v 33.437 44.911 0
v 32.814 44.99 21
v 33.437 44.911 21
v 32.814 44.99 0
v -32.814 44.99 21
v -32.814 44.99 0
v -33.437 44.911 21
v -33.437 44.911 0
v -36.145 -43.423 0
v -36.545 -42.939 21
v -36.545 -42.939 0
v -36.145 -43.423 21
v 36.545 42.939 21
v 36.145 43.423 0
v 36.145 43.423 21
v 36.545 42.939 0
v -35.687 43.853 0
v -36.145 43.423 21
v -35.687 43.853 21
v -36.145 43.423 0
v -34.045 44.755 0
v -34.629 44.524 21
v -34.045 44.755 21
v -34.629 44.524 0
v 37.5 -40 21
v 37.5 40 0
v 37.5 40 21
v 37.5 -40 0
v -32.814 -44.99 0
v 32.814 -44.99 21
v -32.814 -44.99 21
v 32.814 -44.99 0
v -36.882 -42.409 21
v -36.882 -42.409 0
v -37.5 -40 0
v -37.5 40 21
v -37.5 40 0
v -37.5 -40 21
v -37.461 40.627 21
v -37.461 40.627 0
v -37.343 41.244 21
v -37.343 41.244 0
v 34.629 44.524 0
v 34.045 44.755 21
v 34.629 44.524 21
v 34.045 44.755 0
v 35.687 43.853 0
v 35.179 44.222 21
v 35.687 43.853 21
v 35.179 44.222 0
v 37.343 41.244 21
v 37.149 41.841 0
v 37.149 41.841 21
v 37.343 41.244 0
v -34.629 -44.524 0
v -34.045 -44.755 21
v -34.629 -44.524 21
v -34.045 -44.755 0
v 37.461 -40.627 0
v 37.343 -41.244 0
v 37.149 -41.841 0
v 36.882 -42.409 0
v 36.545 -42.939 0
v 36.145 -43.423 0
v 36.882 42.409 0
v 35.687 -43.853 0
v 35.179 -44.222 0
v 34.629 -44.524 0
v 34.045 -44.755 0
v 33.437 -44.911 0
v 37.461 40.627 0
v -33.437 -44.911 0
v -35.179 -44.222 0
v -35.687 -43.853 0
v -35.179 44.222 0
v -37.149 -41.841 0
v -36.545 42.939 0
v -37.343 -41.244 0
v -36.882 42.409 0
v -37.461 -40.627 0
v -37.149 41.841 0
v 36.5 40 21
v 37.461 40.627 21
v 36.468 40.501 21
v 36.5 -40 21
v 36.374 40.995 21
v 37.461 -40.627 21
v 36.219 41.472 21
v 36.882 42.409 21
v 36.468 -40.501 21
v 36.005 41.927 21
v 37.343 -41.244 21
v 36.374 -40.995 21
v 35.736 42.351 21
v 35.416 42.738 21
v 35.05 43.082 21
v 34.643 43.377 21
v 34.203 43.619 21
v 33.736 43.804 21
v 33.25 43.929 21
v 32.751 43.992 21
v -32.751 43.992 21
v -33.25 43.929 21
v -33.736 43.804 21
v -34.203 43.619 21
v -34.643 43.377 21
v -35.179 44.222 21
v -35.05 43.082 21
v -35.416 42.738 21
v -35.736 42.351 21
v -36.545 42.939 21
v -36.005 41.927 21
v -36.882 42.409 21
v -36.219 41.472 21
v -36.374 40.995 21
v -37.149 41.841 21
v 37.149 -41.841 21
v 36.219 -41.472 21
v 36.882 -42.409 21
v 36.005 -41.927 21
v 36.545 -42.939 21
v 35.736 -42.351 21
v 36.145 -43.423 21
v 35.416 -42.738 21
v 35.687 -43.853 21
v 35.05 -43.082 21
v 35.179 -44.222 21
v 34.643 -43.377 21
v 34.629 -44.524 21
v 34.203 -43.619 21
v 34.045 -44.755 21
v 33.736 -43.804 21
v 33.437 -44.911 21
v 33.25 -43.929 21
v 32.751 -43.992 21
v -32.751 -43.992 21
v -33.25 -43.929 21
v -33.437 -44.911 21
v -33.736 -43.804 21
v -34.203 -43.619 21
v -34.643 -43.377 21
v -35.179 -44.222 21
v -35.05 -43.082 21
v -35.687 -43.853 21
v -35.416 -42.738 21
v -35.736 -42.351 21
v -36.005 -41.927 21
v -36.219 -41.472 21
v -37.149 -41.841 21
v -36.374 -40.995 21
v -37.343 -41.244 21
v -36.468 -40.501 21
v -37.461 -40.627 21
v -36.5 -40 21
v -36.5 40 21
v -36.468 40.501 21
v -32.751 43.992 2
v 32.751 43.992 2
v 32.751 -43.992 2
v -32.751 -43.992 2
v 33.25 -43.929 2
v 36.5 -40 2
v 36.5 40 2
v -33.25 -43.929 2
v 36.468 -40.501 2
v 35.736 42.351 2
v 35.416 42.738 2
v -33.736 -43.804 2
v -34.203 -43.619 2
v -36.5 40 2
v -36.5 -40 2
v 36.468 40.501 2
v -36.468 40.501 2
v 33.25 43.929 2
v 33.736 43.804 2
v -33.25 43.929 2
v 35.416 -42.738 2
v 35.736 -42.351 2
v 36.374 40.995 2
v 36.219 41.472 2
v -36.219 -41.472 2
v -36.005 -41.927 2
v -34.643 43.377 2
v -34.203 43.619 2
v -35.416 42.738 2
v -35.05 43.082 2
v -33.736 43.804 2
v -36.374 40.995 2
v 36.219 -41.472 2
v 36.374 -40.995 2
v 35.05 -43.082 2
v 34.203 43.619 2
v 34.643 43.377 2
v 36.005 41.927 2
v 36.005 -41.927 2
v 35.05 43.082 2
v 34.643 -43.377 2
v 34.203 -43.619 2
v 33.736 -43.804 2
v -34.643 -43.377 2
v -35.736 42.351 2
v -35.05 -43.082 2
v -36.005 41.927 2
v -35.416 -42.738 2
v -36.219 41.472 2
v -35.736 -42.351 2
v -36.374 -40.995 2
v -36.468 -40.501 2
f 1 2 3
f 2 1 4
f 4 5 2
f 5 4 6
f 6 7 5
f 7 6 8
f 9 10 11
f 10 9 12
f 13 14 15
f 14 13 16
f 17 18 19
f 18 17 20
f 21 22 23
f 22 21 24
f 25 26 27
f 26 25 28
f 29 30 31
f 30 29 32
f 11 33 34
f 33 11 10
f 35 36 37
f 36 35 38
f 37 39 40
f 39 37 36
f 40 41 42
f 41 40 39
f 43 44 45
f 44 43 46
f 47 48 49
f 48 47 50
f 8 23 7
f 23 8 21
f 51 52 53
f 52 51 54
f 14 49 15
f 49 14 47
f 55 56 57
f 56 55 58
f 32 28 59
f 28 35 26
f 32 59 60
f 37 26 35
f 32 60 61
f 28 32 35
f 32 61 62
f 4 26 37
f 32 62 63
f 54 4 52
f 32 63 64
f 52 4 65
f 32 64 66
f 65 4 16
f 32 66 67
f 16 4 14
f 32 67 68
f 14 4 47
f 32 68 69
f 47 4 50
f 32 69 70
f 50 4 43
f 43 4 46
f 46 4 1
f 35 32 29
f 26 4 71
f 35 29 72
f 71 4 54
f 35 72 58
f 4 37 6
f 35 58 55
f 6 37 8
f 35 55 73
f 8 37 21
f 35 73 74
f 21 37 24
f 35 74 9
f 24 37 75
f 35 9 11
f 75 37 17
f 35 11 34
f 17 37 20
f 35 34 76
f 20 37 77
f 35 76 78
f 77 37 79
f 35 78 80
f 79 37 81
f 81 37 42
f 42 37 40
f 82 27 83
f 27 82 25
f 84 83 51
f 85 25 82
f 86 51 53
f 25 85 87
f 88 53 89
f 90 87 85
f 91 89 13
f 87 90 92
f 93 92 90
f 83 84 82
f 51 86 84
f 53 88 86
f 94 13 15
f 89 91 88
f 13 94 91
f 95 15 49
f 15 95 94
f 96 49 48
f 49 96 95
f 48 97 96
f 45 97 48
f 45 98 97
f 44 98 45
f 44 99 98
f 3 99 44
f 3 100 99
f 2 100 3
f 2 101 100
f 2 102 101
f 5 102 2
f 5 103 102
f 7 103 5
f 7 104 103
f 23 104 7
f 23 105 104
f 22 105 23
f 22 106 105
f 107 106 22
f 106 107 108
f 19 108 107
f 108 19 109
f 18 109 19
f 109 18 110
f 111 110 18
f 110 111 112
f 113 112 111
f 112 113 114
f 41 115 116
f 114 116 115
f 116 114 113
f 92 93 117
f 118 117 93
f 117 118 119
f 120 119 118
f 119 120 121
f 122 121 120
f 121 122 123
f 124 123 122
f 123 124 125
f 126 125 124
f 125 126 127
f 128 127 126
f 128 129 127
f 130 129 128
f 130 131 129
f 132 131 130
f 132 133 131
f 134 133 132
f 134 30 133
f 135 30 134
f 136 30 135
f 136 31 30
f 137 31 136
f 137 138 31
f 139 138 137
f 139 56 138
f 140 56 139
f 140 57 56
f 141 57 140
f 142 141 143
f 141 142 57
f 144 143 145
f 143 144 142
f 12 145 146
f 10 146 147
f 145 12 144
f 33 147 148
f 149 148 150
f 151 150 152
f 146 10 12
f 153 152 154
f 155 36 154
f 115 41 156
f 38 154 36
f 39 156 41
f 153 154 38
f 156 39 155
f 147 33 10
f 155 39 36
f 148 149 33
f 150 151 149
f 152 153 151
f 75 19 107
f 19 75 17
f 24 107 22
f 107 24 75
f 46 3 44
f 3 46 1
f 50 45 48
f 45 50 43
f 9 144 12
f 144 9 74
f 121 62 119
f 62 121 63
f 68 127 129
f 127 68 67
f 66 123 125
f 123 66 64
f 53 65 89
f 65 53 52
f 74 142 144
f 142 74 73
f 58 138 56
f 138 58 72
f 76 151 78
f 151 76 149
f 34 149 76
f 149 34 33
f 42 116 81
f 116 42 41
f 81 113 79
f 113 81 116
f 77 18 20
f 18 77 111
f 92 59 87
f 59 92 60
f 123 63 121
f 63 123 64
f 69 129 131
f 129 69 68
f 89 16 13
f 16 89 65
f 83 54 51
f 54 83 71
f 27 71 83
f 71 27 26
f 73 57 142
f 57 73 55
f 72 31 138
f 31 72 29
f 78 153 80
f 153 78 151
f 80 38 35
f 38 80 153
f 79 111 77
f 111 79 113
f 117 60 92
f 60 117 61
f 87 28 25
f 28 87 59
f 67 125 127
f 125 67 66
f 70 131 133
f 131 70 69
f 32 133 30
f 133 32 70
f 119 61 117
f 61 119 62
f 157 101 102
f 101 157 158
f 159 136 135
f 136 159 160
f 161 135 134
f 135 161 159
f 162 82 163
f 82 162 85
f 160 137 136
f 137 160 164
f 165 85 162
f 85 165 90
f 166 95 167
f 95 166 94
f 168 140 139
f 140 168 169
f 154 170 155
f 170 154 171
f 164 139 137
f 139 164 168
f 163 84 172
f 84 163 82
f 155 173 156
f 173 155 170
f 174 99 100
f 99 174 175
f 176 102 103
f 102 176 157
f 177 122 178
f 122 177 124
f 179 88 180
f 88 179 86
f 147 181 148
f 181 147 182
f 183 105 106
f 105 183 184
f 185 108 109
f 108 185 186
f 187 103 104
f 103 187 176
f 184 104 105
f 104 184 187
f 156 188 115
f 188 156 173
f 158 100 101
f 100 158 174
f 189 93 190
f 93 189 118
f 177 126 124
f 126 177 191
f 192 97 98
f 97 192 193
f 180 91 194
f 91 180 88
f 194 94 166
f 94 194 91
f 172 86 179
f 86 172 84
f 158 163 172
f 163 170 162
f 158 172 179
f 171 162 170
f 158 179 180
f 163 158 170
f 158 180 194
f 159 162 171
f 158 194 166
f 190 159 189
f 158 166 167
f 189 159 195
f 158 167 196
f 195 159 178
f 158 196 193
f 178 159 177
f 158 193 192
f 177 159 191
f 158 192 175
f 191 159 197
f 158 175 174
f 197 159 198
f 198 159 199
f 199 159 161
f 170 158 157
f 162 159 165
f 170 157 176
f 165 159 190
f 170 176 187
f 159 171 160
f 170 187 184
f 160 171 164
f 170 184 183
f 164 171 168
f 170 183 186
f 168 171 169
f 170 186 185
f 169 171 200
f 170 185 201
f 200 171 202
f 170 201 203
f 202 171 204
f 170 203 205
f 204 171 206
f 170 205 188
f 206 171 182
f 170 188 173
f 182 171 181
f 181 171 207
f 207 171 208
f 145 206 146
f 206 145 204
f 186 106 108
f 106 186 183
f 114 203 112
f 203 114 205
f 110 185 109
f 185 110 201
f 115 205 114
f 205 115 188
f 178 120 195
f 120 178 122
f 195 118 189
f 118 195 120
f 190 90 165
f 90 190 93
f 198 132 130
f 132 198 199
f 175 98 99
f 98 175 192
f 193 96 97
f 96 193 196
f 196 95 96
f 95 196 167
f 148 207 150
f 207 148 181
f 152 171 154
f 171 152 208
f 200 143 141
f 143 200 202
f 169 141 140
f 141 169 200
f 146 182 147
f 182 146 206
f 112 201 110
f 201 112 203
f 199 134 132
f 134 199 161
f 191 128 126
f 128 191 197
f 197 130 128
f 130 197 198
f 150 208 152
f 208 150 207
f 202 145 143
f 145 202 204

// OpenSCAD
$fn = 50;


difference() {
	union() {
		hull() {
			translate(v = [-32.5000000000, 40.0000000000, 0]) {
				cylinder(h = 21, r = 5);
			}
			translate(v = [32.5000000000, 40.0000000000, 0]) {
				cylinder(h = 21, r = 5);
			}
			translate(v = [-32.5000000000, -40.0000000000, 0]) {
				cylinder(h = 21, r = 5);
			}
			translate(v = [32.5000000000, -40.0000000000, 0]) {
				cylinder(h = 21, r = 5);
			}
		}
	}
	union() {
		translate(v = [0, 0, 2]) {
			hull() {
				translate(v = [-32.5000000000, 40.0000000000, 0]) {
					cylinder(h = 19, r = 4);
				}
				translate(v = [32.5000000000, 40.0000000000, 0]) {
					cylinder(h = 19, r = 4);
				}
				translate(v = [-32.5000000000, -40.0000000000, 0]) {
					cylinder(h = 19, r = 4);
				}
				translate(v = [32.5000000000, -40.0000000000, 0]) {
					cylinder(h = 19, r = 4);
				}
			}
		}
	}
}
